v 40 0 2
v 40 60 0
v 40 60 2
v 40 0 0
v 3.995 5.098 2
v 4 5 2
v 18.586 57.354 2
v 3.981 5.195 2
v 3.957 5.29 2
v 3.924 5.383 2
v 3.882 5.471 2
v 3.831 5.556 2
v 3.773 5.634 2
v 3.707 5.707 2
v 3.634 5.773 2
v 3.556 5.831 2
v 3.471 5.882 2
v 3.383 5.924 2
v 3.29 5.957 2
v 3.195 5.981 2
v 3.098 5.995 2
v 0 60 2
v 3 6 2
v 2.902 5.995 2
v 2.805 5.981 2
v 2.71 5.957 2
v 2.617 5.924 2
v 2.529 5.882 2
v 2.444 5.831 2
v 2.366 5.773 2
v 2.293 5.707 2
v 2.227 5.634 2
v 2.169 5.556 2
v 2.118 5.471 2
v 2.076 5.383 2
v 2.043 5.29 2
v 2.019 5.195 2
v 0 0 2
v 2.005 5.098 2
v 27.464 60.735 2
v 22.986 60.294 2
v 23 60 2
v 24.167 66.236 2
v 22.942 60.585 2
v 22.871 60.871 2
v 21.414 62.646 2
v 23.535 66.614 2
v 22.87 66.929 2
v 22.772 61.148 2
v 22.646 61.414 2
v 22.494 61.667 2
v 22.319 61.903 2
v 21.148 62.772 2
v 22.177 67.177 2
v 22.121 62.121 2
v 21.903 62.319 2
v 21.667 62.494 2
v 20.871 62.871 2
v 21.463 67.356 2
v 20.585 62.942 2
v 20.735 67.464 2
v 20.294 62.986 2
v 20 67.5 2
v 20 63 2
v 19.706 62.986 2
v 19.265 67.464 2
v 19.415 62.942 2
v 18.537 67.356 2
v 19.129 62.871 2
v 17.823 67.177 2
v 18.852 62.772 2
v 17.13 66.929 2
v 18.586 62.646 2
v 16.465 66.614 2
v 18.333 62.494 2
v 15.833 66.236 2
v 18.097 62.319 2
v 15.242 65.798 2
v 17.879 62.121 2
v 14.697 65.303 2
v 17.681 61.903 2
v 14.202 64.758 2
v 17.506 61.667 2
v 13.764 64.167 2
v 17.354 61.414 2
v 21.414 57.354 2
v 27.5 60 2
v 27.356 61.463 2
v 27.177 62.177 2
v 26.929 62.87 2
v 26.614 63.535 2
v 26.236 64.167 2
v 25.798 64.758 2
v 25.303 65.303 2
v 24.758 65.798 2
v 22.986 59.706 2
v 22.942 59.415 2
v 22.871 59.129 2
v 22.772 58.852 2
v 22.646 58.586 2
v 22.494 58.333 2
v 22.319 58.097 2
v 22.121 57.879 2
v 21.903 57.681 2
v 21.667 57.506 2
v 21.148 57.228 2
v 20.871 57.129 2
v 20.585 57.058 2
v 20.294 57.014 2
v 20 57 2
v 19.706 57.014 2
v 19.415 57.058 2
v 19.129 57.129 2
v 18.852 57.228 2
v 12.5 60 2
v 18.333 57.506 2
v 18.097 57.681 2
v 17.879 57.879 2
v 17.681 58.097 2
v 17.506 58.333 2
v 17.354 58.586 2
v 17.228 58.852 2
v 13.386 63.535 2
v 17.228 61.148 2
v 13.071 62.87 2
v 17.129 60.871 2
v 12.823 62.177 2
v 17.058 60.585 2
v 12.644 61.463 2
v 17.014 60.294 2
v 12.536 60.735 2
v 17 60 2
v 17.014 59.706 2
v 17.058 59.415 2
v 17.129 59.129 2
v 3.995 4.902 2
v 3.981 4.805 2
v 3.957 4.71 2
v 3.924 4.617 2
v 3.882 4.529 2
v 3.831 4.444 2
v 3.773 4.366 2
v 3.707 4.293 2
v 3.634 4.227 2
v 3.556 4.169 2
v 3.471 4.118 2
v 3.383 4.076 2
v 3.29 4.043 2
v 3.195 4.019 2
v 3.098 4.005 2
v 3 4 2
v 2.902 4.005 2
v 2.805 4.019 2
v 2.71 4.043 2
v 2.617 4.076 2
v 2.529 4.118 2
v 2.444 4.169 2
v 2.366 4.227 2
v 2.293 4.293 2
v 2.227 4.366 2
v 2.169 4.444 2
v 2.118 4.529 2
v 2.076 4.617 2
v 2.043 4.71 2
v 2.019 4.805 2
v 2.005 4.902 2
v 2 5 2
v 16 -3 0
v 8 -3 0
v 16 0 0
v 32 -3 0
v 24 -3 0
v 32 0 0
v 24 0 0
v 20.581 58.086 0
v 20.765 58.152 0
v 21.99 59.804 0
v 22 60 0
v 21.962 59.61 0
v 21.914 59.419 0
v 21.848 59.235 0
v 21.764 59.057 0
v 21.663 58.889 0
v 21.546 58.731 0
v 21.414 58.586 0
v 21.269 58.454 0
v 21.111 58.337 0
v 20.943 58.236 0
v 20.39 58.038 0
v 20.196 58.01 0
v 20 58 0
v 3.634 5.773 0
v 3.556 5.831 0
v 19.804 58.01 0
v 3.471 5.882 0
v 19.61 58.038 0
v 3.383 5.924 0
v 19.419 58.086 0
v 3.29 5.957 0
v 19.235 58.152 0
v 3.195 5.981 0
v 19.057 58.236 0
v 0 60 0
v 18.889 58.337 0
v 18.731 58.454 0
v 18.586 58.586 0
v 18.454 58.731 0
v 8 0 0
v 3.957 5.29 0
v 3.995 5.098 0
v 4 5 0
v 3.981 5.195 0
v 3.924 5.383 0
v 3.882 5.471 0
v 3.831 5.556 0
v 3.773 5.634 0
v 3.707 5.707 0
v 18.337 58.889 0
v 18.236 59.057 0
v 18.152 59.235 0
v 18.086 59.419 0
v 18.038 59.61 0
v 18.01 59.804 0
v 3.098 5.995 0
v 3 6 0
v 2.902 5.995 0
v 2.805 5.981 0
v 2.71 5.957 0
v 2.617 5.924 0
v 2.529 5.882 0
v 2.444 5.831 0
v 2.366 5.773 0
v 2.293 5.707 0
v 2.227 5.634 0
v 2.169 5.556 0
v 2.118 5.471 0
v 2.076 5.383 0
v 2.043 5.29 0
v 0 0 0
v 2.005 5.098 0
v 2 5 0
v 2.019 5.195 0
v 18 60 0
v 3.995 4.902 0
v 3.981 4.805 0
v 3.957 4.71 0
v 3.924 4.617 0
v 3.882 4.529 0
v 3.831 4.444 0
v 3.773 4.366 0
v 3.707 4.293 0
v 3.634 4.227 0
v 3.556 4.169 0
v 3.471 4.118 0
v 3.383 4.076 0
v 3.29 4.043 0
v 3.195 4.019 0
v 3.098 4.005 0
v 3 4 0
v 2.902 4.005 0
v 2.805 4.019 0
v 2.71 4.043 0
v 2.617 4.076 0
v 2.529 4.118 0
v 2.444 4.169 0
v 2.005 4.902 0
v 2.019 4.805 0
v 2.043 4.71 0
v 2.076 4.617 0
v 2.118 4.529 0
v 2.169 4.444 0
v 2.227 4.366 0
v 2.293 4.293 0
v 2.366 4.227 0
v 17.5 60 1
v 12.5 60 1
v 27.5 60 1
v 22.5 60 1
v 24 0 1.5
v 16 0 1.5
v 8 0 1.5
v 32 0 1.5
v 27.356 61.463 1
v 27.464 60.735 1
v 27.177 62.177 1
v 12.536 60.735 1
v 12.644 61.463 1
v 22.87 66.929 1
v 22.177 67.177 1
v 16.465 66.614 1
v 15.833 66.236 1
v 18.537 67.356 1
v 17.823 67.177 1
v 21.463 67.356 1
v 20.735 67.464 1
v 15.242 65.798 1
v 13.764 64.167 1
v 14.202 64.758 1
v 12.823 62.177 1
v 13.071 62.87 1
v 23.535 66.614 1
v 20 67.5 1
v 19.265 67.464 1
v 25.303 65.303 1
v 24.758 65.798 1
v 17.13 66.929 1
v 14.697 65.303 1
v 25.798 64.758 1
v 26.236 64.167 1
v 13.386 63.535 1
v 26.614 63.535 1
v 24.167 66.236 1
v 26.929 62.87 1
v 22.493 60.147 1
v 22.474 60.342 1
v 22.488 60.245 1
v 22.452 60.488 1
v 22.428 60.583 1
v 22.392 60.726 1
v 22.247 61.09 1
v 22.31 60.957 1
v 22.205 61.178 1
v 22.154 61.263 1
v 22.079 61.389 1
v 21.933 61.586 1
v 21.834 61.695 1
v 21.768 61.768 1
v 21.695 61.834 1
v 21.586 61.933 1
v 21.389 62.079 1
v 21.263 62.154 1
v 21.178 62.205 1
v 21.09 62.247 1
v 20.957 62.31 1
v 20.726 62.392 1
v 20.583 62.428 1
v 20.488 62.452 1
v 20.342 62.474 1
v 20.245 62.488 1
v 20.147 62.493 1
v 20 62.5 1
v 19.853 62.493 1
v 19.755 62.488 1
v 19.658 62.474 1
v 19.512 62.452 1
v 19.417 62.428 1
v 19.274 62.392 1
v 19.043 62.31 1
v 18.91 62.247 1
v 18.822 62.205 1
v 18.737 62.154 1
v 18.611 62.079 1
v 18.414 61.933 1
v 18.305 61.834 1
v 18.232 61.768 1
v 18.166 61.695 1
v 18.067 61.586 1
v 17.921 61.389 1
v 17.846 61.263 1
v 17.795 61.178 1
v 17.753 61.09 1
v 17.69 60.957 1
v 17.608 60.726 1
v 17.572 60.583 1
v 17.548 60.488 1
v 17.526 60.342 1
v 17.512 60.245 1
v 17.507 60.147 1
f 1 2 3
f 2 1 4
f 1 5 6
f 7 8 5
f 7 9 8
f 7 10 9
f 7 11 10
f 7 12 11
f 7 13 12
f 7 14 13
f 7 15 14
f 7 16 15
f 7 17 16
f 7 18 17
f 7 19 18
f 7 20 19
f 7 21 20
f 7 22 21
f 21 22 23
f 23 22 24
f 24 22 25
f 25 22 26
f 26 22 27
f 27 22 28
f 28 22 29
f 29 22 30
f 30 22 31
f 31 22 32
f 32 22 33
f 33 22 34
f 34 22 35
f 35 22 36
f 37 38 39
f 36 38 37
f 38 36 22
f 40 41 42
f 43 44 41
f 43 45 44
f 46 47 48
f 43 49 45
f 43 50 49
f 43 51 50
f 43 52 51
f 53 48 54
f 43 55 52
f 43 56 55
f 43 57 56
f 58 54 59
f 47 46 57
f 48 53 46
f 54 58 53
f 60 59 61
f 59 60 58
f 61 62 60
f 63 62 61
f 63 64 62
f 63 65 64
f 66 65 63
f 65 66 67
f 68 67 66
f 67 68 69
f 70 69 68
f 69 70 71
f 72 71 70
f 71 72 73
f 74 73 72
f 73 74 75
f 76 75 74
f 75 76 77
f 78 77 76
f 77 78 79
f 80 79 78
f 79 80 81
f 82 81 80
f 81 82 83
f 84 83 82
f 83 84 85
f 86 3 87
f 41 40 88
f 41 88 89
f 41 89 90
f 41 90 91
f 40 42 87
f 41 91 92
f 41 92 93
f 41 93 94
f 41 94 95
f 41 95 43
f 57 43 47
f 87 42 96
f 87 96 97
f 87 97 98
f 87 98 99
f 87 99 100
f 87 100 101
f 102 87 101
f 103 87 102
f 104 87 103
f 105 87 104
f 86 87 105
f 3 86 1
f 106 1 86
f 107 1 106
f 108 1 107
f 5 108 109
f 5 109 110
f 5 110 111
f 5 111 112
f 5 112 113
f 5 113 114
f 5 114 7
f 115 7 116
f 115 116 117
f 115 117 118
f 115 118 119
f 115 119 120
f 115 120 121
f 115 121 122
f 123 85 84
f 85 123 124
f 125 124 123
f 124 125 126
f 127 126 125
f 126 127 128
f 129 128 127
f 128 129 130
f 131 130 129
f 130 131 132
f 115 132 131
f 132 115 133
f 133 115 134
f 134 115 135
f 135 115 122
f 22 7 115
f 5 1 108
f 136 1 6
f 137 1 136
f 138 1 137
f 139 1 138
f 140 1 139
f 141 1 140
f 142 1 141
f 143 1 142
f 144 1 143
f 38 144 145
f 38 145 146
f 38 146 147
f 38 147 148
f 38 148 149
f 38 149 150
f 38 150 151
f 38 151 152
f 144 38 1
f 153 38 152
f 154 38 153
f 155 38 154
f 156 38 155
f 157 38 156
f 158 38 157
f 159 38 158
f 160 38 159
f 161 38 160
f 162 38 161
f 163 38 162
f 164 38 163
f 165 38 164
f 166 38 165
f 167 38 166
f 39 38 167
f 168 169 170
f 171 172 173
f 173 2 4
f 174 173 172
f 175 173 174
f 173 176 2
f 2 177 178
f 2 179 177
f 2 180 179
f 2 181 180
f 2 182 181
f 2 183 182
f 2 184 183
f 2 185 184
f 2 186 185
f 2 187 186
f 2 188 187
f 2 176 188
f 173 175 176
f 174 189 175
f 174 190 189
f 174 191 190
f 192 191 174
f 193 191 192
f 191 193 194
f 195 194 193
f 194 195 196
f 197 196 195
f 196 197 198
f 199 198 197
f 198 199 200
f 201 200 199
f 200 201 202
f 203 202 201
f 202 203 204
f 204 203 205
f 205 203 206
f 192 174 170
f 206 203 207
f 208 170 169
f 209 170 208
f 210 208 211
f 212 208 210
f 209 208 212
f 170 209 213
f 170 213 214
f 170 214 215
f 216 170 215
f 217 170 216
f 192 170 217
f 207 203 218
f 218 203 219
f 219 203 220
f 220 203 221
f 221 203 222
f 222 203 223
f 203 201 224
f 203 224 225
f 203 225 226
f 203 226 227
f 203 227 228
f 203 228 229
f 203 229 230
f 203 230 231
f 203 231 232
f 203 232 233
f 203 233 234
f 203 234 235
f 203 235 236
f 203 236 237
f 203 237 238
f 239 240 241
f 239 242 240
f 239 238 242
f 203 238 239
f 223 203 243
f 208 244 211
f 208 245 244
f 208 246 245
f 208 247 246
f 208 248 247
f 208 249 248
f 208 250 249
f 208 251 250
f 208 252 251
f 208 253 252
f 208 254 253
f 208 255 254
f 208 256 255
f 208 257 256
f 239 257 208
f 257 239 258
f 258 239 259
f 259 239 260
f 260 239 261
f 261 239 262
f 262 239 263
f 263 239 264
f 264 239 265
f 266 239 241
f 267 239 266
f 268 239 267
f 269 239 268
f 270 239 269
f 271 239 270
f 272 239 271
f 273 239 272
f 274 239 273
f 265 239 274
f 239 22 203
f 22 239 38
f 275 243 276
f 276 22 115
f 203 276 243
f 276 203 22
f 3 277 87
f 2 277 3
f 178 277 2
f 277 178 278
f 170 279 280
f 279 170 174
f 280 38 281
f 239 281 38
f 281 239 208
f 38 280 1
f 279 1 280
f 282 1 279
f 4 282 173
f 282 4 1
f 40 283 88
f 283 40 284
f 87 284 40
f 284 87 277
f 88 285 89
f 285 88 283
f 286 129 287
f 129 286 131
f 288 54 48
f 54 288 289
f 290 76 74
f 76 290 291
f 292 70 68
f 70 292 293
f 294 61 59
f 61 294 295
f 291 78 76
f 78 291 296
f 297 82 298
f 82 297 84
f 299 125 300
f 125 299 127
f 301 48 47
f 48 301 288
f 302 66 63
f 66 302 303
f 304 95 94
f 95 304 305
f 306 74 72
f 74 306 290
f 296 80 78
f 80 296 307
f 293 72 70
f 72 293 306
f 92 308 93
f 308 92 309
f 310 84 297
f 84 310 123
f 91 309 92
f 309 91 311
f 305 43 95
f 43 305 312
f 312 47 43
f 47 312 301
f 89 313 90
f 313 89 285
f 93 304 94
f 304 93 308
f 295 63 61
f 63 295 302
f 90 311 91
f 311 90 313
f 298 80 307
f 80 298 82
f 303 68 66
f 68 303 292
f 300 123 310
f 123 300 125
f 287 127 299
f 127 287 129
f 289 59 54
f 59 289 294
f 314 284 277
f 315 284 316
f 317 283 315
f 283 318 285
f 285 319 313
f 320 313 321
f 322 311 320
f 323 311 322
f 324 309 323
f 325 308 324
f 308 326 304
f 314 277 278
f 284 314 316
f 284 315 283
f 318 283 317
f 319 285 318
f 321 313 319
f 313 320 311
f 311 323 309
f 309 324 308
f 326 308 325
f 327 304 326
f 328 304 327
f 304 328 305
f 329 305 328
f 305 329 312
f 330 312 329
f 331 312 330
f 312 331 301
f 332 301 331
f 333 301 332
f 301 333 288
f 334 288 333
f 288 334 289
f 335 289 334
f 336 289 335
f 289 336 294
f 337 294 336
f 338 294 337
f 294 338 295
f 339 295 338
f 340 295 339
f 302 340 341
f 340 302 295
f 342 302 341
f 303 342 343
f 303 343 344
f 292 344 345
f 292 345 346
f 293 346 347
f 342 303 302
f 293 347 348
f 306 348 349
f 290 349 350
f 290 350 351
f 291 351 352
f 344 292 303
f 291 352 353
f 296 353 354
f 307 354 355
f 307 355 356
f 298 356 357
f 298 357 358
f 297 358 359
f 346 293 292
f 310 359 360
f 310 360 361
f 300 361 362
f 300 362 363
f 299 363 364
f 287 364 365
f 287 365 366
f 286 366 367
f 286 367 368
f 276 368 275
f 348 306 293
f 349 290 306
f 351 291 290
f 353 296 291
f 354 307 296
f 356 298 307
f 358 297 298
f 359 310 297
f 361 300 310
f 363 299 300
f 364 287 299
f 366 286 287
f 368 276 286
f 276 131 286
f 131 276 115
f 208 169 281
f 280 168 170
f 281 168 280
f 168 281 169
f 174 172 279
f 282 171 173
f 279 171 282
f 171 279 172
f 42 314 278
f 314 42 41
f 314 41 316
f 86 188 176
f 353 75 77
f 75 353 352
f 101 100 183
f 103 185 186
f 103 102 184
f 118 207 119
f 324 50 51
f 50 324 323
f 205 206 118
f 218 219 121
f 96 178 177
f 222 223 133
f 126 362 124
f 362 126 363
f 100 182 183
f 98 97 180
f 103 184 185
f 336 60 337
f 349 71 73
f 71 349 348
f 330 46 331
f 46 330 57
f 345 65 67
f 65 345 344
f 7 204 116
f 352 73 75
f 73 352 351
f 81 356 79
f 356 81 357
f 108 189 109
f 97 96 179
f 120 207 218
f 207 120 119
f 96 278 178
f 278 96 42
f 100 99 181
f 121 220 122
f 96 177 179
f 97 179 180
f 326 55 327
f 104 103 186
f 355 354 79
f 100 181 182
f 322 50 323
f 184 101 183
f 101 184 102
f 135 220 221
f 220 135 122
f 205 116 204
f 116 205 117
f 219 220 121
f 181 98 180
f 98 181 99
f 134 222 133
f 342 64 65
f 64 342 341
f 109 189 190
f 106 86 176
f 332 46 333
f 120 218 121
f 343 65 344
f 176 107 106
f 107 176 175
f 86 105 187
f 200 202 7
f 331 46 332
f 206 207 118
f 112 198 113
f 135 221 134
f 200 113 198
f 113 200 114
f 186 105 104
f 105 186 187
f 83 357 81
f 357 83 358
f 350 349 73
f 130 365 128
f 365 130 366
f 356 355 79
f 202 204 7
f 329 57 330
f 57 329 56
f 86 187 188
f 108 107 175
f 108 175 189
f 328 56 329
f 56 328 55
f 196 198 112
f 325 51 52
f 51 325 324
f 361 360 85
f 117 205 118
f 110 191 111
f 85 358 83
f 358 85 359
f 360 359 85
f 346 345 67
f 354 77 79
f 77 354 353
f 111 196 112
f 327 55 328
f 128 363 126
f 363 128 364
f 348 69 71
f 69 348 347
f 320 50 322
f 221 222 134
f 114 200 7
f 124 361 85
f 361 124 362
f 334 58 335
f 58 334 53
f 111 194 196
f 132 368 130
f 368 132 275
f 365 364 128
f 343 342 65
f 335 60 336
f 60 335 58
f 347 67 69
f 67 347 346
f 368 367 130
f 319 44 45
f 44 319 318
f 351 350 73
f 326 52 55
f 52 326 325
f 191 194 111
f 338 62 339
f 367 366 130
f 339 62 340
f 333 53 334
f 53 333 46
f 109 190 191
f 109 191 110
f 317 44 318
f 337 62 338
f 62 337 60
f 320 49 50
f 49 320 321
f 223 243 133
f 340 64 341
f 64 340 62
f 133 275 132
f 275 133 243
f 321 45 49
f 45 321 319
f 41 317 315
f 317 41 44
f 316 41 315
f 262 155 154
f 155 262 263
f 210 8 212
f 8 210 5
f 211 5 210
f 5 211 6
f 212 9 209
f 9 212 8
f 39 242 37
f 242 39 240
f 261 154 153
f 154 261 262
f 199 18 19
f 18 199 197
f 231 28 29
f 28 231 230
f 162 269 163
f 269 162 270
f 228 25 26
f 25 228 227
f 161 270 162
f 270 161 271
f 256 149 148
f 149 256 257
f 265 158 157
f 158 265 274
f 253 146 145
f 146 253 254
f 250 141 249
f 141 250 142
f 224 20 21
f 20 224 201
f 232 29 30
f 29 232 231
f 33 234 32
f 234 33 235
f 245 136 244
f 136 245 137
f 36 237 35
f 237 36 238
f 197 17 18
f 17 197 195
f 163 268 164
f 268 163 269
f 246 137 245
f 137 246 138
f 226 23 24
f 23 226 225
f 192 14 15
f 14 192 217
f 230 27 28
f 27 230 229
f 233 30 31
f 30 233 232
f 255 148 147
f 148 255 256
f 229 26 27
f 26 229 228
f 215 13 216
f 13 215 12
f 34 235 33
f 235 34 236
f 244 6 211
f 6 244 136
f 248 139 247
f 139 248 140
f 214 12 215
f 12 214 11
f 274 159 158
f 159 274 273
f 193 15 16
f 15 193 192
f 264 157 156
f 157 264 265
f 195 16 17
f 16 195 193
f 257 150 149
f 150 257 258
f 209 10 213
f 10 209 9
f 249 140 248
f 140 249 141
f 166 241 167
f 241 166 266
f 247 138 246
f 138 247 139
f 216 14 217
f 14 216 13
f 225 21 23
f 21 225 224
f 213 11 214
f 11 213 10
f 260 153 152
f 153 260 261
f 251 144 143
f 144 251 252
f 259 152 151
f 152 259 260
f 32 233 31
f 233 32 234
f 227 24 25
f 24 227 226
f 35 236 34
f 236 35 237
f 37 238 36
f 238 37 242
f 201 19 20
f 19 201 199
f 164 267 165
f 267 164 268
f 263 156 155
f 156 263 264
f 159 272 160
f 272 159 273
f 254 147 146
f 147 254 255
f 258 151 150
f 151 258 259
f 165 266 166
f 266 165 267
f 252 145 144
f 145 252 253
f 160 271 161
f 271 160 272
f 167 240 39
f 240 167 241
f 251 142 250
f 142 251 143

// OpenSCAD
// increase for smoother cone ($fn)
segments = 64;

// Inner hole
hole_r = 3;
hole_h = 2;

module ramp() {
    rotate([90, 0, 90])
    linear_extrude(height = 8)
        polygon([
            [0, 0],
            [3, 0],
            [3, 1.5]
        ]);
}

difference() {
    union() {
        cube([40, 60, 2]);
        translate([40/2,60,1])
            cylinder(h = 1, d = 15, $fn = segments);
        
        translate([8,-3,0])
            ramp();
        
        translate([24,-3,0])
            ramp();
    }

    translate([40/2,60,0])
        cylinder(2, hole_h, hole_r, center = false, $fn = segments);

    translate([3,5,0])
        cylinder(2, 1, 1, center = false, $fn = segments);
}
